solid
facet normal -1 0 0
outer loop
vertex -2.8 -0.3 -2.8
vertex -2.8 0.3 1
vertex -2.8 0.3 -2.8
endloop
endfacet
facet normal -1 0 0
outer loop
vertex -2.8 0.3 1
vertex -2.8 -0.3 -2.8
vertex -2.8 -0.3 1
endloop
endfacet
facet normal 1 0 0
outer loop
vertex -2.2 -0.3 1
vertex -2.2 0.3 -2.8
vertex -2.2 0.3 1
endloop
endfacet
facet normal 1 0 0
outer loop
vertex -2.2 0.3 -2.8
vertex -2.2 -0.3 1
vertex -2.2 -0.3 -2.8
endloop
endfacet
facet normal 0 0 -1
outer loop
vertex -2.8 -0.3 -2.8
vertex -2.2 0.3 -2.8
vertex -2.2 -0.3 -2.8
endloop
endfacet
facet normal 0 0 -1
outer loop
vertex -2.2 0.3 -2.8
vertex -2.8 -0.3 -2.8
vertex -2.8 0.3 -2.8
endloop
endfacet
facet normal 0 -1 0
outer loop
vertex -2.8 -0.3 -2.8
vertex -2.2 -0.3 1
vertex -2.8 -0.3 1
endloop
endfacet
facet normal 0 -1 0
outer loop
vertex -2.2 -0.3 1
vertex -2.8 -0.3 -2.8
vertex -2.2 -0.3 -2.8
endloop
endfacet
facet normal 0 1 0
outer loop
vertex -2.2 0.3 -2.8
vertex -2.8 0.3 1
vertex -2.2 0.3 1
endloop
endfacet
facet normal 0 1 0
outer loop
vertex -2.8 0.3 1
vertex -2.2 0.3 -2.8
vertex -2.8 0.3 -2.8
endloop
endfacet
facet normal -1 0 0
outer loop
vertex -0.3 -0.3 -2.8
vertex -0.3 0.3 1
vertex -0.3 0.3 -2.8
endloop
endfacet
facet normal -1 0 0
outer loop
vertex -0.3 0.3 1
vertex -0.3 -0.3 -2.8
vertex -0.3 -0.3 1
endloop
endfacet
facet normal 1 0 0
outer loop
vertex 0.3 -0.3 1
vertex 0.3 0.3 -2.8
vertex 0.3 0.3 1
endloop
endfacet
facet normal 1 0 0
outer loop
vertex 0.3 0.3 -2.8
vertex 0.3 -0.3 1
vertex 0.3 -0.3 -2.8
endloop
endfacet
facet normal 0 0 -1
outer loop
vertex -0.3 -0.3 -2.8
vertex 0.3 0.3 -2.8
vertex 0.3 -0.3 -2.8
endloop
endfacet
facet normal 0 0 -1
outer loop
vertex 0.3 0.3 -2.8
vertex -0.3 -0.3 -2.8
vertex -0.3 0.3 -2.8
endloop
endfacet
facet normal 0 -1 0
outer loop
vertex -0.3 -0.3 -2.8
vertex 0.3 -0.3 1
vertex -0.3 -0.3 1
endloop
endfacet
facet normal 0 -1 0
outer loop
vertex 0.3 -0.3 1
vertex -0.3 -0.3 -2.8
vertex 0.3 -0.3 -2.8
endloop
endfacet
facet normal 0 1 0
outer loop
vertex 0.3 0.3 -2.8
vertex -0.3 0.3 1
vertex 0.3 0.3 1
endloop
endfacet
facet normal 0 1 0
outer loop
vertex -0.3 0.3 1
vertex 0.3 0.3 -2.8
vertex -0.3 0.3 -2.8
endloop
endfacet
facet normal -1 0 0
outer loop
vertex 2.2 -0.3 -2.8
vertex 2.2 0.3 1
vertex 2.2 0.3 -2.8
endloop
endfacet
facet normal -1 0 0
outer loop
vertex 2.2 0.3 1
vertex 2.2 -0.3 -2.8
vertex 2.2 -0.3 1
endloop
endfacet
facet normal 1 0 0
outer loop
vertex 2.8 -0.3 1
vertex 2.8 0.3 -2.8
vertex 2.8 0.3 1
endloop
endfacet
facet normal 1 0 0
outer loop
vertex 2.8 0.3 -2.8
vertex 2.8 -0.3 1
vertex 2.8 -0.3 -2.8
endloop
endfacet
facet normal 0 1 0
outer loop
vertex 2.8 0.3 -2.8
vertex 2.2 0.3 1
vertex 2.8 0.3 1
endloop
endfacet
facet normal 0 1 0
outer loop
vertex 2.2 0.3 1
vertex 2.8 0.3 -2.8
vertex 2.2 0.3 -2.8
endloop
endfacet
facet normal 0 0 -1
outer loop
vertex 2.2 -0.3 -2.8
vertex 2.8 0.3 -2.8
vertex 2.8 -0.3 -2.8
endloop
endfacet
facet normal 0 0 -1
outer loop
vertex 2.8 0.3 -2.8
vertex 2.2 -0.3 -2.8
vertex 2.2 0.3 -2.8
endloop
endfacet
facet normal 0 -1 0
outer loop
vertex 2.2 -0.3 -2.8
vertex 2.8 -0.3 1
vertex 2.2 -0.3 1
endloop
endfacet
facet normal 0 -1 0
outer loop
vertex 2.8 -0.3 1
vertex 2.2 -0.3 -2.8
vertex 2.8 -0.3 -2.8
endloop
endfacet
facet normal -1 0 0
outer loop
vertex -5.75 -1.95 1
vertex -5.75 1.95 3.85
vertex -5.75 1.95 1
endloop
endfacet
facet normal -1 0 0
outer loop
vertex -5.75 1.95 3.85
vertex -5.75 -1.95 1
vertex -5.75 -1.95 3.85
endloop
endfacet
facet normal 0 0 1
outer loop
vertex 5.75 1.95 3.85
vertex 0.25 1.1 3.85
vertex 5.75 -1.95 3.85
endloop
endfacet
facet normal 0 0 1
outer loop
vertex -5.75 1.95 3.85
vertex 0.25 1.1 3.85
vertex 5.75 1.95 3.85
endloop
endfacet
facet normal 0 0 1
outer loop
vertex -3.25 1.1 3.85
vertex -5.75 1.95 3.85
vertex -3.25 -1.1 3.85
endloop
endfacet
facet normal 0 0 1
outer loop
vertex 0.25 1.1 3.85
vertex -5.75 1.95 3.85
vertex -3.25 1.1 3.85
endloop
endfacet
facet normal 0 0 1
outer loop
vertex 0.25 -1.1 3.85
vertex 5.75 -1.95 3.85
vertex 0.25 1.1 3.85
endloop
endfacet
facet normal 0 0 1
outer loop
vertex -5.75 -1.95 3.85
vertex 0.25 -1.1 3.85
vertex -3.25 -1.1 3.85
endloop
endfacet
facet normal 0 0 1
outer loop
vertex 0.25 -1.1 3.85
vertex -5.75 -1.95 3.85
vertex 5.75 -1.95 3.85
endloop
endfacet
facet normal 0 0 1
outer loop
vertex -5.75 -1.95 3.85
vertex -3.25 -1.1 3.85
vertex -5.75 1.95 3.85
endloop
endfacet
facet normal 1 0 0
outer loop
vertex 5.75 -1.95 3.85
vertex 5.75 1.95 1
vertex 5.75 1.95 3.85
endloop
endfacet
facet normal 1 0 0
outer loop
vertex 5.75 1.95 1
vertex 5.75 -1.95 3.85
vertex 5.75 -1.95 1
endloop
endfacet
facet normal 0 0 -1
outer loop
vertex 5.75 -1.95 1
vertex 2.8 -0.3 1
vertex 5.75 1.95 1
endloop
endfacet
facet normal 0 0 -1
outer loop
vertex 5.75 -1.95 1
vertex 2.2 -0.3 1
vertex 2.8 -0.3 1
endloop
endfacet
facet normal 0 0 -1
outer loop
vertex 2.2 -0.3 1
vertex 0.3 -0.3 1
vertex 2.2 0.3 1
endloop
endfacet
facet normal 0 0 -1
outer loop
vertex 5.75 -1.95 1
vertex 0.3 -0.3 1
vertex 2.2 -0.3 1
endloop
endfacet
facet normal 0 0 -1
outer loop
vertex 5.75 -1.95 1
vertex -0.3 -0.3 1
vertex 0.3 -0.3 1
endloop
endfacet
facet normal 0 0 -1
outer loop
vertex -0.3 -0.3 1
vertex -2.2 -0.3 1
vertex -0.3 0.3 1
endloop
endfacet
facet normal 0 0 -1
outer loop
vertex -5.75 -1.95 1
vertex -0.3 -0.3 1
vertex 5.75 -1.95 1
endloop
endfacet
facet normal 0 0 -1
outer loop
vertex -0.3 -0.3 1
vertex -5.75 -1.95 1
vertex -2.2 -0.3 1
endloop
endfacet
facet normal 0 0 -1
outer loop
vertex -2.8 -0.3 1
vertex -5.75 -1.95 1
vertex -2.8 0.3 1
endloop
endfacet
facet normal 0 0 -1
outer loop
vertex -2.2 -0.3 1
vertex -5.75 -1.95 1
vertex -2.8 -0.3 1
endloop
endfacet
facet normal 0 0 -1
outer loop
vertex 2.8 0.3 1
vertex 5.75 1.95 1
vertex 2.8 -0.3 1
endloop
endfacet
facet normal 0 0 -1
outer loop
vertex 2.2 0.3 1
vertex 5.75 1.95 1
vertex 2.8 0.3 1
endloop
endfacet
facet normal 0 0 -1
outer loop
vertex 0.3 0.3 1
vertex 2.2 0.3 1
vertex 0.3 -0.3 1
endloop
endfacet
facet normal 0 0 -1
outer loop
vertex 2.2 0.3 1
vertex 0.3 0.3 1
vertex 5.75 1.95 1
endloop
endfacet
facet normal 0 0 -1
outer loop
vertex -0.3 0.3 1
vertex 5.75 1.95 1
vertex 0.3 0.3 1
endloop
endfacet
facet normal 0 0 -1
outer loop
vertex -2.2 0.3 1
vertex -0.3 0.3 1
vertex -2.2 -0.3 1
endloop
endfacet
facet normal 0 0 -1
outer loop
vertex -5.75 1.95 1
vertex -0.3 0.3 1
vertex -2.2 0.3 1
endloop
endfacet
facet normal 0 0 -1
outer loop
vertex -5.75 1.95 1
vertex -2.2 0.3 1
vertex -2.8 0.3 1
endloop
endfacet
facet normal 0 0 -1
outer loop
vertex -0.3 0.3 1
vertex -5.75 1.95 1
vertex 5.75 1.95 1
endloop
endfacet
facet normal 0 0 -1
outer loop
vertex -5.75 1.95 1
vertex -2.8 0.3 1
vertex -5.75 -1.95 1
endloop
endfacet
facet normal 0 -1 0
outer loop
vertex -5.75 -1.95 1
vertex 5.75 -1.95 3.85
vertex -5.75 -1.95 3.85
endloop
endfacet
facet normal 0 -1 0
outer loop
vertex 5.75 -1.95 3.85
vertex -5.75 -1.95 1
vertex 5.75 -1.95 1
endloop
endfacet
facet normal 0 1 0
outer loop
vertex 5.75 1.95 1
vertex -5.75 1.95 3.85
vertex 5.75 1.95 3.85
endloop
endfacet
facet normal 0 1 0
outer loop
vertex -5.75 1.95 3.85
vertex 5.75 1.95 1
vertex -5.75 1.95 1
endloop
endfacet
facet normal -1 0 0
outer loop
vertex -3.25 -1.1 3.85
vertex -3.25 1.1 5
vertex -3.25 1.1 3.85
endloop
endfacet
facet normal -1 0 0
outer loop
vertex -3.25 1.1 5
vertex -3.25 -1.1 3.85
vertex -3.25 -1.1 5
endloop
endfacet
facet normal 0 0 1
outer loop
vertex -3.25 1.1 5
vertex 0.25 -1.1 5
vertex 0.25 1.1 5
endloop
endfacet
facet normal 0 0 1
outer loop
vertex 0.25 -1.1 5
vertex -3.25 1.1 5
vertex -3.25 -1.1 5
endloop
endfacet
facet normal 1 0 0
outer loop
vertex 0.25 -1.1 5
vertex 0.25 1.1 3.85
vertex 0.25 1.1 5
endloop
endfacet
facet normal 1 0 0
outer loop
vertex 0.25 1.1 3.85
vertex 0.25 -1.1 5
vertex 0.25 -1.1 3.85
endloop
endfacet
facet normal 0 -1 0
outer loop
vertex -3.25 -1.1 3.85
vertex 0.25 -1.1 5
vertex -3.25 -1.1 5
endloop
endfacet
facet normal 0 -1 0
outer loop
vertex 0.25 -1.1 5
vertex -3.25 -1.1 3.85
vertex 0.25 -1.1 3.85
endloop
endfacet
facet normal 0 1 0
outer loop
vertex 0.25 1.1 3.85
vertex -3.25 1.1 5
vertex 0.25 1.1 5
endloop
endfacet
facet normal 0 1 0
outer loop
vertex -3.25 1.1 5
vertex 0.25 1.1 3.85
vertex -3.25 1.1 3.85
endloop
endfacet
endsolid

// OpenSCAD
// E-Switch EG1218 compact SPDT slide switch.
// Origin: center electrical pin (COM), Z=0 at host-PCB top.

$fn = 32;

module eg1218() {
    // Three 0.6 mm square solder pins on 2.50 mm pitch.
    for (x = [-2.5, 0, 2.5])
        translate([x - 0.30, -0.30, -2.8]) cube([0.60, 0.60, 4.0]);

    // Metal shell/body within the footprint's 11.6 x 4.0 mm outline.
    translate([-5.75, -1.95, 1.0]) cube([11.50, 3.90, 2.85]);

    // Black sliding actuator, shown in one stable end position.
    translate([-3.25, -1.10, 3.75]) cube([3.5, 2.20, 1.25]);
}

eg1218();
